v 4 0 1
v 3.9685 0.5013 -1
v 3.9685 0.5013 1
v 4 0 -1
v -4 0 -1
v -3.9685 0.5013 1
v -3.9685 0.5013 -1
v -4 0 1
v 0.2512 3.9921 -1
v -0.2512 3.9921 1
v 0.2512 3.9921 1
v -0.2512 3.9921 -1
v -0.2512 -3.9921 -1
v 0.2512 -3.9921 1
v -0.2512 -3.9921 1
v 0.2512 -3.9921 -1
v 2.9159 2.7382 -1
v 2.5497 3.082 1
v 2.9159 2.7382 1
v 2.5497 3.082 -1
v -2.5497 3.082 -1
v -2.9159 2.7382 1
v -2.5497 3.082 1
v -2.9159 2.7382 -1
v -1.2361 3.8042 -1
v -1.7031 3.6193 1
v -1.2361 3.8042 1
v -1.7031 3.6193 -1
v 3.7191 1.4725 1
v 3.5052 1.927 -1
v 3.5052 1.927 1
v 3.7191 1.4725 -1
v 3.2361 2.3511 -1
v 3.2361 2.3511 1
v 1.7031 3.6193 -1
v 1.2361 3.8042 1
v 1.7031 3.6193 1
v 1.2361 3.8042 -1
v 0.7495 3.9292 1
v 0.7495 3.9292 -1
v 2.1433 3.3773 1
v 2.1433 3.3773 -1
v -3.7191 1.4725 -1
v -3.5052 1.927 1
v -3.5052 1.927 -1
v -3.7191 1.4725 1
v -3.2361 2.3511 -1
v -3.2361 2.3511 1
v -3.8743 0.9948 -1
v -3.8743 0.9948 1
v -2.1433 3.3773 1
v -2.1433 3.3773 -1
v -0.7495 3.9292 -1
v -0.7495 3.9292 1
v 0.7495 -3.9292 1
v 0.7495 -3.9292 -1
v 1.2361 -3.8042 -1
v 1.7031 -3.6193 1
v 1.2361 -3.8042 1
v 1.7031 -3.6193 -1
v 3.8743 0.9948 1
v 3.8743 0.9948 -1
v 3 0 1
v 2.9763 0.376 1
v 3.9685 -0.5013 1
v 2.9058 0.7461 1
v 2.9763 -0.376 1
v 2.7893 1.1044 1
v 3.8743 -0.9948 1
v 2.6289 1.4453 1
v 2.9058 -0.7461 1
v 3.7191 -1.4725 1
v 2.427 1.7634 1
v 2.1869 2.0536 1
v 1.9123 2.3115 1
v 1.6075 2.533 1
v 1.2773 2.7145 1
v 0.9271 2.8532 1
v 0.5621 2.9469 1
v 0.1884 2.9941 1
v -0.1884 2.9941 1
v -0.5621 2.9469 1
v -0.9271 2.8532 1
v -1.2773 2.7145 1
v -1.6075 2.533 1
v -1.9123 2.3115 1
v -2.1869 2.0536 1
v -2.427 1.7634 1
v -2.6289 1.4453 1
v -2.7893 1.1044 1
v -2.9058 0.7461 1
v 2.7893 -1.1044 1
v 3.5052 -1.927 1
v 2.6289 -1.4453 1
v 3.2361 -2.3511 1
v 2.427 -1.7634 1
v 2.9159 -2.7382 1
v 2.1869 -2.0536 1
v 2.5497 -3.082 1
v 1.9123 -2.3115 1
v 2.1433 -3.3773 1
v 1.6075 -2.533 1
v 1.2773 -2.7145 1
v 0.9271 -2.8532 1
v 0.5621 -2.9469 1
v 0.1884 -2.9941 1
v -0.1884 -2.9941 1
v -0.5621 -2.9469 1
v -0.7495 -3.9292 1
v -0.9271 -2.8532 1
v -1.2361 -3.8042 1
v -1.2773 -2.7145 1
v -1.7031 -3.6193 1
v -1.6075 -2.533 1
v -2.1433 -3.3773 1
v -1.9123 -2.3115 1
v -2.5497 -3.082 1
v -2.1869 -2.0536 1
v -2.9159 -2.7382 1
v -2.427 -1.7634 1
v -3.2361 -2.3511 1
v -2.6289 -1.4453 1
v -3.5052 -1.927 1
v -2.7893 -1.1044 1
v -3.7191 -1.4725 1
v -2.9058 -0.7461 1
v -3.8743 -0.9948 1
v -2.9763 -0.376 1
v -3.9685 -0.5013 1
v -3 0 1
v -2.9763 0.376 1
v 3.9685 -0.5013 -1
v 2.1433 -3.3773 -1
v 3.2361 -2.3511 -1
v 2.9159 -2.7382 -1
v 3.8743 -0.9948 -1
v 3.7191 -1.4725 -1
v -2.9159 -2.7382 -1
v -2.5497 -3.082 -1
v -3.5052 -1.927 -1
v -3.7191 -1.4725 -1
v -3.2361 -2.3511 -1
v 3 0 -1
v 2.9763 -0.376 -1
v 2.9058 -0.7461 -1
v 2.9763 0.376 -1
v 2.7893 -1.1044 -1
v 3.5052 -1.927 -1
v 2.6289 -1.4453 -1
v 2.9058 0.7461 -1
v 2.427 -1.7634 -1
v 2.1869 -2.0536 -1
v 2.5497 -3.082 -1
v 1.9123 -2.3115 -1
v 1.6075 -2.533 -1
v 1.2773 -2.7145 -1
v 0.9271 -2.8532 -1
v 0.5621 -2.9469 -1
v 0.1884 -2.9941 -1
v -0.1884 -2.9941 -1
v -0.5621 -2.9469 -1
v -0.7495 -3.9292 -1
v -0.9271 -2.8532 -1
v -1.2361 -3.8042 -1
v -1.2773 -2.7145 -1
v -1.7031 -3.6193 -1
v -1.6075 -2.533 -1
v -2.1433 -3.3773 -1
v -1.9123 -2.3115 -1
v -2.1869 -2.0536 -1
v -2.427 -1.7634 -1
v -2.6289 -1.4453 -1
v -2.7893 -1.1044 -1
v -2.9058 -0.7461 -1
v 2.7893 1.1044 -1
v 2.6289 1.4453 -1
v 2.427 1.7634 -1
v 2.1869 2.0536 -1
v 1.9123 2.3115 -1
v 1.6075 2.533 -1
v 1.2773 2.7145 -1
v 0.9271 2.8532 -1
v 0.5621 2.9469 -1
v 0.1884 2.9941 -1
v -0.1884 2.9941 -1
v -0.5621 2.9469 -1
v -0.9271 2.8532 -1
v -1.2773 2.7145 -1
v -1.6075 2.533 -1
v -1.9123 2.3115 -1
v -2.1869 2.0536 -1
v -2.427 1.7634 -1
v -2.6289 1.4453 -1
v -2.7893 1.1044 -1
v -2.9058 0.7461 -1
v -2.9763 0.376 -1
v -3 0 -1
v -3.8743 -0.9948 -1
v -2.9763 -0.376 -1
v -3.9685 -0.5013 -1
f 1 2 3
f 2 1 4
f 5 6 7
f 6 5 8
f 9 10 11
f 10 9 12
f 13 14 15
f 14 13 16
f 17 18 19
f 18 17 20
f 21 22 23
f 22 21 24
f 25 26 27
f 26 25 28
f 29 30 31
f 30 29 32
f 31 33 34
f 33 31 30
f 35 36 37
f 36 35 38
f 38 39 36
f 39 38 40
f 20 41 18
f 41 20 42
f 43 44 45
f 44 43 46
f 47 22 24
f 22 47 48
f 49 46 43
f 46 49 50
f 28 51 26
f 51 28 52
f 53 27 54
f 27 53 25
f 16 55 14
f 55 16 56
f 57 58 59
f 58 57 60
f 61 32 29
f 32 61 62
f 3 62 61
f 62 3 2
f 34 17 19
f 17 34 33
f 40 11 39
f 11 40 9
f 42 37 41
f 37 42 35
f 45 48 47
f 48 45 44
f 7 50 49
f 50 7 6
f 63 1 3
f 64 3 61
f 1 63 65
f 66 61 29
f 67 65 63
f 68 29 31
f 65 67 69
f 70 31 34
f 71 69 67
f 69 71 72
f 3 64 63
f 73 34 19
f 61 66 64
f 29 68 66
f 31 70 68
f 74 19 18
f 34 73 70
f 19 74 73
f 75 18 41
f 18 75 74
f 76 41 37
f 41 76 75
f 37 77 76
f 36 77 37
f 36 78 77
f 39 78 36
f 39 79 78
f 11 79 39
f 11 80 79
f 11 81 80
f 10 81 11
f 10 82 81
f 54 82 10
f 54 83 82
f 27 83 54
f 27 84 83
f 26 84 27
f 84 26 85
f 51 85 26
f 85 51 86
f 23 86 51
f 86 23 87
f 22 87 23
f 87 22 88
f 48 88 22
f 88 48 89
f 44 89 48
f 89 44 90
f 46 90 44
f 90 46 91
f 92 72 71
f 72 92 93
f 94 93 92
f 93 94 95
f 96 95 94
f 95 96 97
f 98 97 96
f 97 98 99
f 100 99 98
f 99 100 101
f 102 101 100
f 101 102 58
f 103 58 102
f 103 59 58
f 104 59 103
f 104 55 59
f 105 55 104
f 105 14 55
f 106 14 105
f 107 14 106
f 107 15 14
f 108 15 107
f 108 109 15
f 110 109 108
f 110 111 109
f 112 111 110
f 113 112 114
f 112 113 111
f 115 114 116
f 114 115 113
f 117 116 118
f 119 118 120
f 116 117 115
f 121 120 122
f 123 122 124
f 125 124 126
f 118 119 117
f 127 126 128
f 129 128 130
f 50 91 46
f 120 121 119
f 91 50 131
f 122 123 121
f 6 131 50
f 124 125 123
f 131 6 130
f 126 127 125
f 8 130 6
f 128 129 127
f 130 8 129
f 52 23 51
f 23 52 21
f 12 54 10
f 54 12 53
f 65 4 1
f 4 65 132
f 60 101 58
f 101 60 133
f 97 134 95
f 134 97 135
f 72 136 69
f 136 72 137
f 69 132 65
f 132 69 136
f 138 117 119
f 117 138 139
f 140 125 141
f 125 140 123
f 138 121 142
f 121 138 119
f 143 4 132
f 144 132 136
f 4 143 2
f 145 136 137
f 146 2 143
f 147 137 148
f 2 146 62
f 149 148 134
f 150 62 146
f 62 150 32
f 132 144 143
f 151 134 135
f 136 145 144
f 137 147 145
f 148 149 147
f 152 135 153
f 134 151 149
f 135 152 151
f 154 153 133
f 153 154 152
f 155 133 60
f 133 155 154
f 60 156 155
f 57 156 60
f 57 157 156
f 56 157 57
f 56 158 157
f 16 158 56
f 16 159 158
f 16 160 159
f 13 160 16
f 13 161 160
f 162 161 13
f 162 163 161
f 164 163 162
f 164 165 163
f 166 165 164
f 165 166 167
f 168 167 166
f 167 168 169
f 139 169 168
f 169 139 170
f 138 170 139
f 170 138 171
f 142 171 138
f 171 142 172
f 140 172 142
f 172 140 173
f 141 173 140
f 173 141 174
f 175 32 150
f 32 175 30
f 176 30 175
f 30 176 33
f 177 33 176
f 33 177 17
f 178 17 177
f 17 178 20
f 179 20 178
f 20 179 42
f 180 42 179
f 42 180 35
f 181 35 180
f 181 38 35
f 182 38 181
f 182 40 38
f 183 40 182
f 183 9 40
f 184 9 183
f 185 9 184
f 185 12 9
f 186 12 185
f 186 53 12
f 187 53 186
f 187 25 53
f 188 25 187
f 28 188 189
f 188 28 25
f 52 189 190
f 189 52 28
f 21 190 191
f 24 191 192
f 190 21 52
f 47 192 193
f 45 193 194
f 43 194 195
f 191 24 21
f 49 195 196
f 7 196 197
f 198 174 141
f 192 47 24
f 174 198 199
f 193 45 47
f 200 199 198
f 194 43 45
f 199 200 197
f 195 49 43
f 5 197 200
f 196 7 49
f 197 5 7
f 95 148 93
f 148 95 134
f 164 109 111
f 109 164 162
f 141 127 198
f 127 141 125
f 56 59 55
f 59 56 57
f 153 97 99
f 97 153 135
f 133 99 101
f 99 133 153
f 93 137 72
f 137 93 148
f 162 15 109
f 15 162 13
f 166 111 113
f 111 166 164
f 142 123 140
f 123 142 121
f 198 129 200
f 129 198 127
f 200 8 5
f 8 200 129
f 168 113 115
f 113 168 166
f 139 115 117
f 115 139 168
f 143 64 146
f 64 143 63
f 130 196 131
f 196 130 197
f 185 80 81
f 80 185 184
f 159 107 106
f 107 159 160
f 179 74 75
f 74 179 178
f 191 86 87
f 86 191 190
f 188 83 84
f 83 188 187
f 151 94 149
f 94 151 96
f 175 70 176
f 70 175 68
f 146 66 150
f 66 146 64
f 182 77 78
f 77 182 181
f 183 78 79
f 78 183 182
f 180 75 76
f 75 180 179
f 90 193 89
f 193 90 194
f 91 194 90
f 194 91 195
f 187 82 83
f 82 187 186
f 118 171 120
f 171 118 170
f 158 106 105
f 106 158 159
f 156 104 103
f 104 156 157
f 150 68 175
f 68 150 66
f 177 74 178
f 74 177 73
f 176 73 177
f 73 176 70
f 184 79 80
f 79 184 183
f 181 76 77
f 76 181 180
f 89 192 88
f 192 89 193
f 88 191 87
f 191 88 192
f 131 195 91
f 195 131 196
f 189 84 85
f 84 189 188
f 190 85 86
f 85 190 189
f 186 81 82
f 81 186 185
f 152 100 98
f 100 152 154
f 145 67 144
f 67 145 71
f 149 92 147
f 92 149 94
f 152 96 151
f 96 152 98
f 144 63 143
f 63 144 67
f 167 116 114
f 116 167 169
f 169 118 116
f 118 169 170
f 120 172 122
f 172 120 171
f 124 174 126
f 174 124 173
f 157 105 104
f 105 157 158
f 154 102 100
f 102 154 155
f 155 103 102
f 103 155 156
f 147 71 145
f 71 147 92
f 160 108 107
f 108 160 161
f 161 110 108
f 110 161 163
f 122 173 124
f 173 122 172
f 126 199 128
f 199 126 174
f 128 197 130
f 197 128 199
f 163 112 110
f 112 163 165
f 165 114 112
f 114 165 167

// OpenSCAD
$fn = 50;


difference() {
	union() {
		translate(v = [0, 0, -1.0000000000]) {
			cylinder(h = 2, r = 4.0000000000);
		}
	}
	union() {
		translate(v = [0, 0, -100.0000000000]) {
			cylinder(h = 200, r = 3);
		}
	}
}
